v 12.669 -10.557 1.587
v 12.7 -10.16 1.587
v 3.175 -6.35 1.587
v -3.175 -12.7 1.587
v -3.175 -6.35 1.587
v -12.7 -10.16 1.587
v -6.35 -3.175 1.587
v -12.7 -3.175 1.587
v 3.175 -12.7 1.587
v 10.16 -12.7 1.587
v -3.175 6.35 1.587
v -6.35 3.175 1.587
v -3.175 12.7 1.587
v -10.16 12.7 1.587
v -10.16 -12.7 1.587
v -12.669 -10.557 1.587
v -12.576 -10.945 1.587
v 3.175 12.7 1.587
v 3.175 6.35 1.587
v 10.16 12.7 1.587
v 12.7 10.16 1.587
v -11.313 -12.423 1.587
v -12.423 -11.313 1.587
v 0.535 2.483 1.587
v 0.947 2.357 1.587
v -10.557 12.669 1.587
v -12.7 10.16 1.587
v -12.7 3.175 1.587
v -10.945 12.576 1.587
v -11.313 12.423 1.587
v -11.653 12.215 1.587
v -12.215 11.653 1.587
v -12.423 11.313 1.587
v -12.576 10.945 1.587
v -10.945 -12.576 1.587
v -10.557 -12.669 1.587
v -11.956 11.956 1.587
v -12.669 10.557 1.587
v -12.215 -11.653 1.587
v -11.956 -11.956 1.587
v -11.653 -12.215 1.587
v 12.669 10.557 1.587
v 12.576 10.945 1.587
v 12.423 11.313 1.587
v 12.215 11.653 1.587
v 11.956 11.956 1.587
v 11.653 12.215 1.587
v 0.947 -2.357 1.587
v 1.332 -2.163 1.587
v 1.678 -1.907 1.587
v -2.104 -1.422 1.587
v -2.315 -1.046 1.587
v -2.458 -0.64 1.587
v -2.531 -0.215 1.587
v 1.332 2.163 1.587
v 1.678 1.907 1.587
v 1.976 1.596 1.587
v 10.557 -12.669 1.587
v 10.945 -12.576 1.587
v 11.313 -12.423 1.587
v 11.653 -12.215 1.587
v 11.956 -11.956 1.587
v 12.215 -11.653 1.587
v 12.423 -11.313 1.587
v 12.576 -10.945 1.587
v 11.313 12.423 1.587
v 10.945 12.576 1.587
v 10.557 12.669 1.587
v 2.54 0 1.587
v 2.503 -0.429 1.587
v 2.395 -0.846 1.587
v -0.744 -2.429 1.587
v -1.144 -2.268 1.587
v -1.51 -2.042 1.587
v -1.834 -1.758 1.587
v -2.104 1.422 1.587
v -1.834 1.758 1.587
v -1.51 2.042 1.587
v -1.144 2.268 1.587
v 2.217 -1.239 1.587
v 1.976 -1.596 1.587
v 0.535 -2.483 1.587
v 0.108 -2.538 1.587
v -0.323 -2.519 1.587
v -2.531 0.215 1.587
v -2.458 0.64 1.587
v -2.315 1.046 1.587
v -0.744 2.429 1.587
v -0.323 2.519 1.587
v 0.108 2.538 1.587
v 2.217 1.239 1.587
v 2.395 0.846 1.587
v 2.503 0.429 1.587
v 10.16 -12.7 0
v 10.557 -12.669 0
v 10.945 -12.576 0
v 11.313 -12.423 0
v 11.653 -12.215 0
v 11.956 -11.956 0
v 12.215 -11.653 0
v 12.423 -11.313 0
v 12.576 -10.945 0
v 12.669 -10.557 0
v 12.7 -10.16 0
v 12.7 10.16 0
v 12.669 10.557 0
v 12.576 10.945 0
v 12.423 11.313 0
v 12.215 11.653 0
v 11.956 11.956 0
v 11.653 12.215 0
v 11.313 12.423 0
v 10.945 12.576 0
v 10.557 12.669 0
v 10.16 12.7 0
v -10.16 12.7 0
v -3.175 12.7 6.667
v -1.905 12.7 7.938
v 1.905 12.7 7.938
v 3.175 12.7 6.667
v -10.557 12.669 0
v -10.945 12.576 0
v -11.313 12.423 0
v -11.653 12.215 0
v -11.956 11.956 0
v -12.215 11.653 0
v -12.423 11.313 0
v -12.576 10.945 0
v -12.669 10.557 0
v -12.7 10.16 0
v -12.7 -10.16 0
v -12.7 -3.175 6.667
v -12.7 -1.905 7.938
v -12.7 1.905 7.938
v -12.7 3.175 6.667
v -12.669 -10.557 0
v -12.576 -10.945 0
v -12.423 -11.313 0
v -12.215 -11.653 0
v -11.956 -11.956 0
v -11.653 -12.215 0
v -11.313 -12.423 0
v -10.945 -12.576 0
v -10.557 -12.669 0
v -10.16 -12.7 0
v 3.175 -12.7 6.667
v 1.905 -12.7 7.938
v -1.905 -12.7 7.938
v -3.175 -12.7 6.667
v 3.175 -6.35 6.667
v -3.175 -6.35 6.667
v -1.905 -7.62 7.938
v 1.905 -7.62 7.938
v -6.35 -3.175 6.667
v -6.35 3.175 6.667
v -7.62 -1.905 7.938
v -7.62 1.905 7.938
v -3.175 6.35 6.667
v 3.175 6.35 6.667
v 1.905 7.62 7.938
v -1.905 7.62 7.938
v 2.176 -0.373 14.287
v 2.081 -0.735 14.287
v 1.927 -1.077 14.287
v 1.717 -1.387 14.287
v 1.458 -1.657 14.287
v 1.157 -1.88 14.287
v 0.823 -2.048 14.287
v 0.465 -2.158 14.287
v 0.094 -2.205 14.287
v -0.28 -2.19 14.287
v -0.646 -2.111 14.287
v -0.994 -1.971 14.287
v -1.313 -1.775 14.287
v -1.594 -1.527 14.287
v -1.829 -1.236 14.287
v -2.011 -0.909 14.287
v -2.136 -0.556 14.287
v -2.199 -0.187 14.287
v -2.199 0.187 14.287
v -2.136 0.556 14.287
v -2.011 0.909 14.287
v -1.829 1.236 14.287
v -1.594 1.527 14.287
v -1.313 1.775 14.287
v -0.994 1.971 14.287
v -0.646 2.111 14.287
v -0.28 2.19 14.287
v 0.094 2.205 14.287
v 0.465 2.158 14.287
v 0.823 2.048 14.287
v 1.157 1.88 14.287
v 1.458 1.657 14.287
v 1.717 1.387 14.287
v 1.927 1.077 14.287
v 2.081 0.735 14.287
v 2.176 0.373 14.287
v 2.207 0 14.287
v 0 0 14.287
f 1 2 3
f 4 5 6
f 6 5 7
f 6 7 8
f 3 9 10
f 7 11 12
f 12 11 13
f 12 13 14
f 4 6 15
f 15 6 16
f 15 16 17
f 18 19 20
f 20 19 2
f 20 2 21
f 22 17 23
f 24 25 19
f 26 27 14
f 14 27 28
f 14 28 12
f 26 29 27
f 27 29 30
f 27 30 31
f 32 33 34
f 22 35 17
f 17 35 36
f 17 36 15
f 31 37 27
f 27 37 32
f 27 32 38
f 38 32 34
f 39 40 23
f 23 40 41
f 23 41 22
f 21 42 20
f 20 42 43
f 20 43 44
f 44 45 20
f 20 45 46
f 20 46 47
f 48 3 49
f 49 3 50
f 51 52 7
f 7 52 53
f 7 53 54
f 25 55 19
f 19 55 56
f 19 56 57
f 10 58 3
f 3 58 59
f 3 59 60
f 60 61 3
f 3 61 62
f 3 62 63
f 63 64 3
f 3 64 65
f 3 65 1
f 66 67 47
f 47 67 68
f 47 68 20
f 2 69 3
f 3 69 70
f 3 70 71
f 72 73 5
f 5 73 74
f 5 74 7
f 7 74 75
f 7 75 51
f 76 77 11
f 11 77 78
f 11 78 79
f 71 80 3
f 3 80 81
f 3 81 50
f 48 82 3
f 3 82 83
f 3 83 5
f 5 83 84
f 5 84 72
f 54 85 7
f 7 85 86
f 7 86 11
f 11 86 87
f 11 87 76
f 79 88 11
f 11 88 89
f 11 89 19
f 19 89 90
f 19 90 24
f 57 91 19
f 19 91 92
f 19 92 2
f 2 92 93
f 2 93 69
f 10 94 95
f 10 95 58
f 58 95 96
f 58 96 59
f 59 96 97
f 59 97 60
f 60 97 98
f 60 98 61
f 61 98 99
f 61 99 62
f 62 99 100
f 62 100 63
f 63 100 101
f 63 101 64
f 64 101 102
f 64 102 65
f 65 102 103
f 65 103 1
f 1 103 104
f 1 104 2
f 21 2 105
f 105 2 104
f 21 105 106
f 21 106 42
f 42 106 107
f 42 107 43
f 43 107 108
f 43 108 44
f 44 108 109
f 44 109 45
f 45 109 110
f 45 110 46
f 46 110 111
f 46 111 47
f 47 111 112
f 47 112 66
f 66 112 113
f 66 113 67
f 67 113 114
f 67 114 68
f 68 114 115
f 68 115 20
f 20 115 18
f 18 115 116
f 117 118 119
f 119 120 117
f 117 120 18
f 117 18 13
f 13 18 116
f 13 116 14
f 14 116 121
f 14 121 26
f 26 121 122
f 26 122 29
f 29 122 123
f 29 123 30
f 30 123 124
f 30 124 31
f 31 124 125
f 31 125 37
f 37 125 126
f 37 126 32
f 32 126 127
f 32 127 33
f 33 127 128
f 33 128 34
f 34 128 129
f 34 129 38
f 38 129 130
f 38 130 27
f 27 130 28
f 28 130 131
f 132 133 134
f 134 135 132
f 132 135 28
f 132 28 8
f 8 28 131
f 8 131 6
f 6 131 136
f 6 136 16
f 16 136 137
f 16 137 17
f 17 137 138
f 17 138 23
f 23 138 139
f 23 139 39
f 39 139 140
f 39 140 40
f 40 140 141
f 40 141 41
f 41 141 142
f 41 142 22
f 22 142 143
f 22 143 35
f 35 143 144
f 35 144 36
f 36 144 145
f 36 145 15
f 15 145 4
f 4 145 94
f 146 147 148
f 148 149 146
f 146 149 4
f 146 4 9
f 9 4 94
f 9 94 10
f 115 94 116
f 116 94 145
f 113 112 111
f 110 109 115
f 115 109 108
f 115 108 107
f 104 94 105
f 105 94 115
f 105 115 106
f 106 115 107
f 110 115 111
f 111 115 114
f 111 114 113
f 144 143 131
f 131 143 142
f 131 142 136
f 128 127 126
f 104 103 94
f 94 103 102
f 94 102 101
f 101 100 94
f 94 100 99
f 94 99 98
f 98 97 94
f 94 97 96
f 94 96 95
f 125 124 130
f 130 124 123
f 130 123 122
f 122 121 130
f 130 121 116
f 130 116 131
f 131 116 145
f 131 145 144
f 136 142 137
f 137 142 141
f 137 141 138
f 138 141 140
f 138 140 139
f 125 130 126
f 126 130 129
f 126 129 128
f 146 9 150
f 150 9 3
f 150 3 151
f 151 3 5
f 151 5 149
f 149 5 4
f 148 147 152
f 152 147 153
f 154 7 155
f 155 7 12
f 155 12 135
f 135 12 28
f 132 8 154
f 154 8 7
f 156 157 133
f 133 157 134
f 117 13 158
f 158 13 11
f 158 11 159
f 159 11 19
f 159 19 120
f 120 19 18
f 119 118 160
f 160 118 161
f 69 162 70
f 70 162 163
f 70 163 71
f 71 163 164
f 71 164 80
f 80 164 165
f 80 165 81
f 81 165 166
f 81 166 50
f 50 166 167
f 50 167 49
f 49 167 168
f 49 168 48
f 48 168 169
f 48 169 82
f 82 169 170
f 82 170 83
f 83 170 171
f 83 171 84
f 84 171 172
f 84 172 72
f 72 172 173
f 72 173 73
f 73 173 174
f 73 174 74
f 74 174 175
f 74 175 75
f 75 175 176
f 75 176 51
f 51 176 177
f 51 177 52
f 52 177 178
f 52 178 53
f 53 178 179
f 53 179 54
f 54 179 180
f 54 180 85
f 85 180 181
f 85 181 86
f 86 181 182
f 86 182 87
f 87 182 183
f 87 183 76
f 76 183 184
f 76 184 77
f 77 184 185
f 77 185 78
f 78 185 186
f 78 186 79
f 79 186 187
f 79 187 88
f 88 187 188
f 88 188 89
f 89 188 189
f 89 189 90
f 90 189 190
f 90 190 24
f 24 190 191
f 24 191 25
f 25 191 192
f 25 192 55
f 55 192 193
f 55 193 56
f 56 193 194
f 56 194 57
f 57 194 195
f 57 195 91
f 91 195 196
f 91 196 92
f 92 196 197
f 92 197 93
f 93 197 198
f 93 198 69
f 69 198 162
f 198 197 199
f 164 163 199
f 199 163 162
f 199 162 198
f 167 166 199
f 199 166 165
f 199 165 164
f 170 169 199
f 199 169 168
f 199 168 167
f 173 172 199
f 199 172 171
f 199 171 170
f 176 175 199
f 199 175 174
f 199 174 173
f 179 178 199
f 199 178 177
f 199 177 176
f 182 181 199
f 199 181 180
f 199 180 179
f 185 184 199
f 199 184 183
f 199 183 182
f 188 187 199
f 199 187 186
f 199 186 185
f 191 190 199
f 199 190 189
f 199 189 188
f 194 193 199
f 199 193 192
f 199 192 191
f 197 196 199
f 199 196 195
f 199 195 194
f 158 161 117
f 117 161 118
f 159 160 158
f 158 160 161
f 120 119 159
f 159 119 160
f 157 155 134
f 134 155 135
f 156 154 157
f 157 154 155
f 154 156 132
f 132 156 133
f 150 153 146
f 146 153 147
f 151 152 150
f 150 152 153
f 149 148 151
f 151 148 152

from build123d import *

# Parameters (mm, degrees)
BOSS_EXTRUDE1_DEPTH = 1.5875
SKETCH2_W           = 6.35
SKETCH2_H           = 6.35
BOSS_EXTRUDE3_DEPTH = 6.35
SKETCH2_4_R         = 2.54
BOSS_EXTRUDE4_DEPTH = 12.7
BOSS_EXTRUDE4_TAPER = 1.5
CHAMFER1_SIZE       = 1.27


with BuildPart() as part:
    # Sketch1 → Boss-Extrude1 (new body)
    with BuildSketch(Plane.XY):
        with BuildLine():
            Line((-10.16, 12.7), (10.16, 12.7))
            ThreePointArc((10.16, 12.7), (11.956051224, 11.956051224), (12.7, 10.16))
            Line((12.7, 10.16), (12.7, -10.16))
            ThreePointArc((12.7, -10.16), (11.956051224, -11.956051224), (10.16, -12.7))
            Line((10.16, -12.7), (-10.16, -12.7))
            ThreePointArc((-10.16, -12.7), (-11.956051224, -11.956051224), (-12.7, -10.16))
            Line((-12.7, -10.16), (-12.7, 10.16))
            ThreePointArc((-12.7, 10.16), (-11.956051224, 11.956051224), (-10.16, 12.7))
        make_face()
    extrude(amount=BOSS_EXTRUDE1_DEPTH)

    # Sketch2 → Boss-Extrude3 (add)
    with BuildSketch(Plane.XY.offset(1.5875)):
        with Locations((0, -9.525)):
            Rectangle(SKETCH2_W, SKETCH2_H)
        with Locations((-9.525, 0)):
            Rectangle(SKETCH2_W, SKETCH2_H)
        with Locations((0, 9.525)):
            Rectangle(SKETCH2_W, SKETCH2_H)
    extrude(amount=BOSS_EXTRUDE3_DEPTH)

    # Sketch2<4> → Boss-Extrude4 (add)
    with BuildSketch(Plane.XY.offset(1.5875)):
        Circle(SKETCH2_4_R)
    extrude(amount=BOSS_EXTRUDE4_DEPTH, taper=BOSS_EXTRUDE4_TAPER)

    # Chamfer1
    chamfer1_edges = [part.edges().sort_by_distance(p)[0] for p in [
        (3.175, -9.525, 7.9375),
        (0, -6.35, 7.9375),
        (-3.175, -9.525, 7.9375),
        (-6.35, 0, 7.9375),
        (-9.525, 3.175, 7.9375),
        (-9.525, -3.175, 7.9375),
        (-3.175, 9.525, 7.9375),
        (0, 6.35, 7.9375),
        (3.175, 9.525, 7.9375),
    ]]
    chamfer(chamfer1_edges, length=CHAMFER1_SIZE)


solid = part.part
